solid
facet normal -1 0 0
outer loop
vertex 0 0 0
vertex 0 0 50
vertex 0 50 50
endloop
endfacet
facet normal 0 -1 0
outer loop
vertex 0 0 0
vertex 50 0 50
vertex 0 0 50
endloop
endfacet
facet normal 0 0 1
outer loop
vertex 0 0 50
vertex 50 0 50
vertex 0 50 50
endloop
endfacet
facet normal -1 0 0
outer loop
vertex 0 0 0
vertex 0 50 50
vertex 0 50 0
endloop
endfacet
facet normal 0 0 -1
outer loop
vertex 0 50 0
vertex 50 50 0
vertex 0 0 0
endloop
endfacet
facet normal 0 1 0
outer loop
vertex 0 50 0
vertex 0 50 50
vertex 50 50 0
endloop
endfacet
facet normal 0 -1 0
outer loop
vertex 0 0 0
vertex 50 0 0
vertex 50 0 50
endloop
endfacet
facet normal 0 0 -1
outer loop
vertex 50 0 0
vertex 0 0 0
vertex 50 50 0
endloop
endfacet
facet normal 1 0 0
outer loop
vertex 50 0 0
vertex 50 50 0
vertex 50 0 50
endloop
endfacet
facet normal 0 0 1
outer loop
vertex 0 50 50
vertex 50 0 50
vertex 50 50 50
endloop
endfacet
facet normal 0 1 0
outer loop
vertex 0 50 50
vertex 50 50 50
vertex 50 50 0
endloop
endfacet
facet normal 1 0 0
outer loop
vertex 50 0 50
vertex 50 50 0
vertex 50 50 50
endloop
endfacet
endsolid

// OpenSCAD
cube([50, 50, 50]);

difference() {
  cube([50, 50, 50]);
  cylinder(h = 60, r = 10, center = true);
}
